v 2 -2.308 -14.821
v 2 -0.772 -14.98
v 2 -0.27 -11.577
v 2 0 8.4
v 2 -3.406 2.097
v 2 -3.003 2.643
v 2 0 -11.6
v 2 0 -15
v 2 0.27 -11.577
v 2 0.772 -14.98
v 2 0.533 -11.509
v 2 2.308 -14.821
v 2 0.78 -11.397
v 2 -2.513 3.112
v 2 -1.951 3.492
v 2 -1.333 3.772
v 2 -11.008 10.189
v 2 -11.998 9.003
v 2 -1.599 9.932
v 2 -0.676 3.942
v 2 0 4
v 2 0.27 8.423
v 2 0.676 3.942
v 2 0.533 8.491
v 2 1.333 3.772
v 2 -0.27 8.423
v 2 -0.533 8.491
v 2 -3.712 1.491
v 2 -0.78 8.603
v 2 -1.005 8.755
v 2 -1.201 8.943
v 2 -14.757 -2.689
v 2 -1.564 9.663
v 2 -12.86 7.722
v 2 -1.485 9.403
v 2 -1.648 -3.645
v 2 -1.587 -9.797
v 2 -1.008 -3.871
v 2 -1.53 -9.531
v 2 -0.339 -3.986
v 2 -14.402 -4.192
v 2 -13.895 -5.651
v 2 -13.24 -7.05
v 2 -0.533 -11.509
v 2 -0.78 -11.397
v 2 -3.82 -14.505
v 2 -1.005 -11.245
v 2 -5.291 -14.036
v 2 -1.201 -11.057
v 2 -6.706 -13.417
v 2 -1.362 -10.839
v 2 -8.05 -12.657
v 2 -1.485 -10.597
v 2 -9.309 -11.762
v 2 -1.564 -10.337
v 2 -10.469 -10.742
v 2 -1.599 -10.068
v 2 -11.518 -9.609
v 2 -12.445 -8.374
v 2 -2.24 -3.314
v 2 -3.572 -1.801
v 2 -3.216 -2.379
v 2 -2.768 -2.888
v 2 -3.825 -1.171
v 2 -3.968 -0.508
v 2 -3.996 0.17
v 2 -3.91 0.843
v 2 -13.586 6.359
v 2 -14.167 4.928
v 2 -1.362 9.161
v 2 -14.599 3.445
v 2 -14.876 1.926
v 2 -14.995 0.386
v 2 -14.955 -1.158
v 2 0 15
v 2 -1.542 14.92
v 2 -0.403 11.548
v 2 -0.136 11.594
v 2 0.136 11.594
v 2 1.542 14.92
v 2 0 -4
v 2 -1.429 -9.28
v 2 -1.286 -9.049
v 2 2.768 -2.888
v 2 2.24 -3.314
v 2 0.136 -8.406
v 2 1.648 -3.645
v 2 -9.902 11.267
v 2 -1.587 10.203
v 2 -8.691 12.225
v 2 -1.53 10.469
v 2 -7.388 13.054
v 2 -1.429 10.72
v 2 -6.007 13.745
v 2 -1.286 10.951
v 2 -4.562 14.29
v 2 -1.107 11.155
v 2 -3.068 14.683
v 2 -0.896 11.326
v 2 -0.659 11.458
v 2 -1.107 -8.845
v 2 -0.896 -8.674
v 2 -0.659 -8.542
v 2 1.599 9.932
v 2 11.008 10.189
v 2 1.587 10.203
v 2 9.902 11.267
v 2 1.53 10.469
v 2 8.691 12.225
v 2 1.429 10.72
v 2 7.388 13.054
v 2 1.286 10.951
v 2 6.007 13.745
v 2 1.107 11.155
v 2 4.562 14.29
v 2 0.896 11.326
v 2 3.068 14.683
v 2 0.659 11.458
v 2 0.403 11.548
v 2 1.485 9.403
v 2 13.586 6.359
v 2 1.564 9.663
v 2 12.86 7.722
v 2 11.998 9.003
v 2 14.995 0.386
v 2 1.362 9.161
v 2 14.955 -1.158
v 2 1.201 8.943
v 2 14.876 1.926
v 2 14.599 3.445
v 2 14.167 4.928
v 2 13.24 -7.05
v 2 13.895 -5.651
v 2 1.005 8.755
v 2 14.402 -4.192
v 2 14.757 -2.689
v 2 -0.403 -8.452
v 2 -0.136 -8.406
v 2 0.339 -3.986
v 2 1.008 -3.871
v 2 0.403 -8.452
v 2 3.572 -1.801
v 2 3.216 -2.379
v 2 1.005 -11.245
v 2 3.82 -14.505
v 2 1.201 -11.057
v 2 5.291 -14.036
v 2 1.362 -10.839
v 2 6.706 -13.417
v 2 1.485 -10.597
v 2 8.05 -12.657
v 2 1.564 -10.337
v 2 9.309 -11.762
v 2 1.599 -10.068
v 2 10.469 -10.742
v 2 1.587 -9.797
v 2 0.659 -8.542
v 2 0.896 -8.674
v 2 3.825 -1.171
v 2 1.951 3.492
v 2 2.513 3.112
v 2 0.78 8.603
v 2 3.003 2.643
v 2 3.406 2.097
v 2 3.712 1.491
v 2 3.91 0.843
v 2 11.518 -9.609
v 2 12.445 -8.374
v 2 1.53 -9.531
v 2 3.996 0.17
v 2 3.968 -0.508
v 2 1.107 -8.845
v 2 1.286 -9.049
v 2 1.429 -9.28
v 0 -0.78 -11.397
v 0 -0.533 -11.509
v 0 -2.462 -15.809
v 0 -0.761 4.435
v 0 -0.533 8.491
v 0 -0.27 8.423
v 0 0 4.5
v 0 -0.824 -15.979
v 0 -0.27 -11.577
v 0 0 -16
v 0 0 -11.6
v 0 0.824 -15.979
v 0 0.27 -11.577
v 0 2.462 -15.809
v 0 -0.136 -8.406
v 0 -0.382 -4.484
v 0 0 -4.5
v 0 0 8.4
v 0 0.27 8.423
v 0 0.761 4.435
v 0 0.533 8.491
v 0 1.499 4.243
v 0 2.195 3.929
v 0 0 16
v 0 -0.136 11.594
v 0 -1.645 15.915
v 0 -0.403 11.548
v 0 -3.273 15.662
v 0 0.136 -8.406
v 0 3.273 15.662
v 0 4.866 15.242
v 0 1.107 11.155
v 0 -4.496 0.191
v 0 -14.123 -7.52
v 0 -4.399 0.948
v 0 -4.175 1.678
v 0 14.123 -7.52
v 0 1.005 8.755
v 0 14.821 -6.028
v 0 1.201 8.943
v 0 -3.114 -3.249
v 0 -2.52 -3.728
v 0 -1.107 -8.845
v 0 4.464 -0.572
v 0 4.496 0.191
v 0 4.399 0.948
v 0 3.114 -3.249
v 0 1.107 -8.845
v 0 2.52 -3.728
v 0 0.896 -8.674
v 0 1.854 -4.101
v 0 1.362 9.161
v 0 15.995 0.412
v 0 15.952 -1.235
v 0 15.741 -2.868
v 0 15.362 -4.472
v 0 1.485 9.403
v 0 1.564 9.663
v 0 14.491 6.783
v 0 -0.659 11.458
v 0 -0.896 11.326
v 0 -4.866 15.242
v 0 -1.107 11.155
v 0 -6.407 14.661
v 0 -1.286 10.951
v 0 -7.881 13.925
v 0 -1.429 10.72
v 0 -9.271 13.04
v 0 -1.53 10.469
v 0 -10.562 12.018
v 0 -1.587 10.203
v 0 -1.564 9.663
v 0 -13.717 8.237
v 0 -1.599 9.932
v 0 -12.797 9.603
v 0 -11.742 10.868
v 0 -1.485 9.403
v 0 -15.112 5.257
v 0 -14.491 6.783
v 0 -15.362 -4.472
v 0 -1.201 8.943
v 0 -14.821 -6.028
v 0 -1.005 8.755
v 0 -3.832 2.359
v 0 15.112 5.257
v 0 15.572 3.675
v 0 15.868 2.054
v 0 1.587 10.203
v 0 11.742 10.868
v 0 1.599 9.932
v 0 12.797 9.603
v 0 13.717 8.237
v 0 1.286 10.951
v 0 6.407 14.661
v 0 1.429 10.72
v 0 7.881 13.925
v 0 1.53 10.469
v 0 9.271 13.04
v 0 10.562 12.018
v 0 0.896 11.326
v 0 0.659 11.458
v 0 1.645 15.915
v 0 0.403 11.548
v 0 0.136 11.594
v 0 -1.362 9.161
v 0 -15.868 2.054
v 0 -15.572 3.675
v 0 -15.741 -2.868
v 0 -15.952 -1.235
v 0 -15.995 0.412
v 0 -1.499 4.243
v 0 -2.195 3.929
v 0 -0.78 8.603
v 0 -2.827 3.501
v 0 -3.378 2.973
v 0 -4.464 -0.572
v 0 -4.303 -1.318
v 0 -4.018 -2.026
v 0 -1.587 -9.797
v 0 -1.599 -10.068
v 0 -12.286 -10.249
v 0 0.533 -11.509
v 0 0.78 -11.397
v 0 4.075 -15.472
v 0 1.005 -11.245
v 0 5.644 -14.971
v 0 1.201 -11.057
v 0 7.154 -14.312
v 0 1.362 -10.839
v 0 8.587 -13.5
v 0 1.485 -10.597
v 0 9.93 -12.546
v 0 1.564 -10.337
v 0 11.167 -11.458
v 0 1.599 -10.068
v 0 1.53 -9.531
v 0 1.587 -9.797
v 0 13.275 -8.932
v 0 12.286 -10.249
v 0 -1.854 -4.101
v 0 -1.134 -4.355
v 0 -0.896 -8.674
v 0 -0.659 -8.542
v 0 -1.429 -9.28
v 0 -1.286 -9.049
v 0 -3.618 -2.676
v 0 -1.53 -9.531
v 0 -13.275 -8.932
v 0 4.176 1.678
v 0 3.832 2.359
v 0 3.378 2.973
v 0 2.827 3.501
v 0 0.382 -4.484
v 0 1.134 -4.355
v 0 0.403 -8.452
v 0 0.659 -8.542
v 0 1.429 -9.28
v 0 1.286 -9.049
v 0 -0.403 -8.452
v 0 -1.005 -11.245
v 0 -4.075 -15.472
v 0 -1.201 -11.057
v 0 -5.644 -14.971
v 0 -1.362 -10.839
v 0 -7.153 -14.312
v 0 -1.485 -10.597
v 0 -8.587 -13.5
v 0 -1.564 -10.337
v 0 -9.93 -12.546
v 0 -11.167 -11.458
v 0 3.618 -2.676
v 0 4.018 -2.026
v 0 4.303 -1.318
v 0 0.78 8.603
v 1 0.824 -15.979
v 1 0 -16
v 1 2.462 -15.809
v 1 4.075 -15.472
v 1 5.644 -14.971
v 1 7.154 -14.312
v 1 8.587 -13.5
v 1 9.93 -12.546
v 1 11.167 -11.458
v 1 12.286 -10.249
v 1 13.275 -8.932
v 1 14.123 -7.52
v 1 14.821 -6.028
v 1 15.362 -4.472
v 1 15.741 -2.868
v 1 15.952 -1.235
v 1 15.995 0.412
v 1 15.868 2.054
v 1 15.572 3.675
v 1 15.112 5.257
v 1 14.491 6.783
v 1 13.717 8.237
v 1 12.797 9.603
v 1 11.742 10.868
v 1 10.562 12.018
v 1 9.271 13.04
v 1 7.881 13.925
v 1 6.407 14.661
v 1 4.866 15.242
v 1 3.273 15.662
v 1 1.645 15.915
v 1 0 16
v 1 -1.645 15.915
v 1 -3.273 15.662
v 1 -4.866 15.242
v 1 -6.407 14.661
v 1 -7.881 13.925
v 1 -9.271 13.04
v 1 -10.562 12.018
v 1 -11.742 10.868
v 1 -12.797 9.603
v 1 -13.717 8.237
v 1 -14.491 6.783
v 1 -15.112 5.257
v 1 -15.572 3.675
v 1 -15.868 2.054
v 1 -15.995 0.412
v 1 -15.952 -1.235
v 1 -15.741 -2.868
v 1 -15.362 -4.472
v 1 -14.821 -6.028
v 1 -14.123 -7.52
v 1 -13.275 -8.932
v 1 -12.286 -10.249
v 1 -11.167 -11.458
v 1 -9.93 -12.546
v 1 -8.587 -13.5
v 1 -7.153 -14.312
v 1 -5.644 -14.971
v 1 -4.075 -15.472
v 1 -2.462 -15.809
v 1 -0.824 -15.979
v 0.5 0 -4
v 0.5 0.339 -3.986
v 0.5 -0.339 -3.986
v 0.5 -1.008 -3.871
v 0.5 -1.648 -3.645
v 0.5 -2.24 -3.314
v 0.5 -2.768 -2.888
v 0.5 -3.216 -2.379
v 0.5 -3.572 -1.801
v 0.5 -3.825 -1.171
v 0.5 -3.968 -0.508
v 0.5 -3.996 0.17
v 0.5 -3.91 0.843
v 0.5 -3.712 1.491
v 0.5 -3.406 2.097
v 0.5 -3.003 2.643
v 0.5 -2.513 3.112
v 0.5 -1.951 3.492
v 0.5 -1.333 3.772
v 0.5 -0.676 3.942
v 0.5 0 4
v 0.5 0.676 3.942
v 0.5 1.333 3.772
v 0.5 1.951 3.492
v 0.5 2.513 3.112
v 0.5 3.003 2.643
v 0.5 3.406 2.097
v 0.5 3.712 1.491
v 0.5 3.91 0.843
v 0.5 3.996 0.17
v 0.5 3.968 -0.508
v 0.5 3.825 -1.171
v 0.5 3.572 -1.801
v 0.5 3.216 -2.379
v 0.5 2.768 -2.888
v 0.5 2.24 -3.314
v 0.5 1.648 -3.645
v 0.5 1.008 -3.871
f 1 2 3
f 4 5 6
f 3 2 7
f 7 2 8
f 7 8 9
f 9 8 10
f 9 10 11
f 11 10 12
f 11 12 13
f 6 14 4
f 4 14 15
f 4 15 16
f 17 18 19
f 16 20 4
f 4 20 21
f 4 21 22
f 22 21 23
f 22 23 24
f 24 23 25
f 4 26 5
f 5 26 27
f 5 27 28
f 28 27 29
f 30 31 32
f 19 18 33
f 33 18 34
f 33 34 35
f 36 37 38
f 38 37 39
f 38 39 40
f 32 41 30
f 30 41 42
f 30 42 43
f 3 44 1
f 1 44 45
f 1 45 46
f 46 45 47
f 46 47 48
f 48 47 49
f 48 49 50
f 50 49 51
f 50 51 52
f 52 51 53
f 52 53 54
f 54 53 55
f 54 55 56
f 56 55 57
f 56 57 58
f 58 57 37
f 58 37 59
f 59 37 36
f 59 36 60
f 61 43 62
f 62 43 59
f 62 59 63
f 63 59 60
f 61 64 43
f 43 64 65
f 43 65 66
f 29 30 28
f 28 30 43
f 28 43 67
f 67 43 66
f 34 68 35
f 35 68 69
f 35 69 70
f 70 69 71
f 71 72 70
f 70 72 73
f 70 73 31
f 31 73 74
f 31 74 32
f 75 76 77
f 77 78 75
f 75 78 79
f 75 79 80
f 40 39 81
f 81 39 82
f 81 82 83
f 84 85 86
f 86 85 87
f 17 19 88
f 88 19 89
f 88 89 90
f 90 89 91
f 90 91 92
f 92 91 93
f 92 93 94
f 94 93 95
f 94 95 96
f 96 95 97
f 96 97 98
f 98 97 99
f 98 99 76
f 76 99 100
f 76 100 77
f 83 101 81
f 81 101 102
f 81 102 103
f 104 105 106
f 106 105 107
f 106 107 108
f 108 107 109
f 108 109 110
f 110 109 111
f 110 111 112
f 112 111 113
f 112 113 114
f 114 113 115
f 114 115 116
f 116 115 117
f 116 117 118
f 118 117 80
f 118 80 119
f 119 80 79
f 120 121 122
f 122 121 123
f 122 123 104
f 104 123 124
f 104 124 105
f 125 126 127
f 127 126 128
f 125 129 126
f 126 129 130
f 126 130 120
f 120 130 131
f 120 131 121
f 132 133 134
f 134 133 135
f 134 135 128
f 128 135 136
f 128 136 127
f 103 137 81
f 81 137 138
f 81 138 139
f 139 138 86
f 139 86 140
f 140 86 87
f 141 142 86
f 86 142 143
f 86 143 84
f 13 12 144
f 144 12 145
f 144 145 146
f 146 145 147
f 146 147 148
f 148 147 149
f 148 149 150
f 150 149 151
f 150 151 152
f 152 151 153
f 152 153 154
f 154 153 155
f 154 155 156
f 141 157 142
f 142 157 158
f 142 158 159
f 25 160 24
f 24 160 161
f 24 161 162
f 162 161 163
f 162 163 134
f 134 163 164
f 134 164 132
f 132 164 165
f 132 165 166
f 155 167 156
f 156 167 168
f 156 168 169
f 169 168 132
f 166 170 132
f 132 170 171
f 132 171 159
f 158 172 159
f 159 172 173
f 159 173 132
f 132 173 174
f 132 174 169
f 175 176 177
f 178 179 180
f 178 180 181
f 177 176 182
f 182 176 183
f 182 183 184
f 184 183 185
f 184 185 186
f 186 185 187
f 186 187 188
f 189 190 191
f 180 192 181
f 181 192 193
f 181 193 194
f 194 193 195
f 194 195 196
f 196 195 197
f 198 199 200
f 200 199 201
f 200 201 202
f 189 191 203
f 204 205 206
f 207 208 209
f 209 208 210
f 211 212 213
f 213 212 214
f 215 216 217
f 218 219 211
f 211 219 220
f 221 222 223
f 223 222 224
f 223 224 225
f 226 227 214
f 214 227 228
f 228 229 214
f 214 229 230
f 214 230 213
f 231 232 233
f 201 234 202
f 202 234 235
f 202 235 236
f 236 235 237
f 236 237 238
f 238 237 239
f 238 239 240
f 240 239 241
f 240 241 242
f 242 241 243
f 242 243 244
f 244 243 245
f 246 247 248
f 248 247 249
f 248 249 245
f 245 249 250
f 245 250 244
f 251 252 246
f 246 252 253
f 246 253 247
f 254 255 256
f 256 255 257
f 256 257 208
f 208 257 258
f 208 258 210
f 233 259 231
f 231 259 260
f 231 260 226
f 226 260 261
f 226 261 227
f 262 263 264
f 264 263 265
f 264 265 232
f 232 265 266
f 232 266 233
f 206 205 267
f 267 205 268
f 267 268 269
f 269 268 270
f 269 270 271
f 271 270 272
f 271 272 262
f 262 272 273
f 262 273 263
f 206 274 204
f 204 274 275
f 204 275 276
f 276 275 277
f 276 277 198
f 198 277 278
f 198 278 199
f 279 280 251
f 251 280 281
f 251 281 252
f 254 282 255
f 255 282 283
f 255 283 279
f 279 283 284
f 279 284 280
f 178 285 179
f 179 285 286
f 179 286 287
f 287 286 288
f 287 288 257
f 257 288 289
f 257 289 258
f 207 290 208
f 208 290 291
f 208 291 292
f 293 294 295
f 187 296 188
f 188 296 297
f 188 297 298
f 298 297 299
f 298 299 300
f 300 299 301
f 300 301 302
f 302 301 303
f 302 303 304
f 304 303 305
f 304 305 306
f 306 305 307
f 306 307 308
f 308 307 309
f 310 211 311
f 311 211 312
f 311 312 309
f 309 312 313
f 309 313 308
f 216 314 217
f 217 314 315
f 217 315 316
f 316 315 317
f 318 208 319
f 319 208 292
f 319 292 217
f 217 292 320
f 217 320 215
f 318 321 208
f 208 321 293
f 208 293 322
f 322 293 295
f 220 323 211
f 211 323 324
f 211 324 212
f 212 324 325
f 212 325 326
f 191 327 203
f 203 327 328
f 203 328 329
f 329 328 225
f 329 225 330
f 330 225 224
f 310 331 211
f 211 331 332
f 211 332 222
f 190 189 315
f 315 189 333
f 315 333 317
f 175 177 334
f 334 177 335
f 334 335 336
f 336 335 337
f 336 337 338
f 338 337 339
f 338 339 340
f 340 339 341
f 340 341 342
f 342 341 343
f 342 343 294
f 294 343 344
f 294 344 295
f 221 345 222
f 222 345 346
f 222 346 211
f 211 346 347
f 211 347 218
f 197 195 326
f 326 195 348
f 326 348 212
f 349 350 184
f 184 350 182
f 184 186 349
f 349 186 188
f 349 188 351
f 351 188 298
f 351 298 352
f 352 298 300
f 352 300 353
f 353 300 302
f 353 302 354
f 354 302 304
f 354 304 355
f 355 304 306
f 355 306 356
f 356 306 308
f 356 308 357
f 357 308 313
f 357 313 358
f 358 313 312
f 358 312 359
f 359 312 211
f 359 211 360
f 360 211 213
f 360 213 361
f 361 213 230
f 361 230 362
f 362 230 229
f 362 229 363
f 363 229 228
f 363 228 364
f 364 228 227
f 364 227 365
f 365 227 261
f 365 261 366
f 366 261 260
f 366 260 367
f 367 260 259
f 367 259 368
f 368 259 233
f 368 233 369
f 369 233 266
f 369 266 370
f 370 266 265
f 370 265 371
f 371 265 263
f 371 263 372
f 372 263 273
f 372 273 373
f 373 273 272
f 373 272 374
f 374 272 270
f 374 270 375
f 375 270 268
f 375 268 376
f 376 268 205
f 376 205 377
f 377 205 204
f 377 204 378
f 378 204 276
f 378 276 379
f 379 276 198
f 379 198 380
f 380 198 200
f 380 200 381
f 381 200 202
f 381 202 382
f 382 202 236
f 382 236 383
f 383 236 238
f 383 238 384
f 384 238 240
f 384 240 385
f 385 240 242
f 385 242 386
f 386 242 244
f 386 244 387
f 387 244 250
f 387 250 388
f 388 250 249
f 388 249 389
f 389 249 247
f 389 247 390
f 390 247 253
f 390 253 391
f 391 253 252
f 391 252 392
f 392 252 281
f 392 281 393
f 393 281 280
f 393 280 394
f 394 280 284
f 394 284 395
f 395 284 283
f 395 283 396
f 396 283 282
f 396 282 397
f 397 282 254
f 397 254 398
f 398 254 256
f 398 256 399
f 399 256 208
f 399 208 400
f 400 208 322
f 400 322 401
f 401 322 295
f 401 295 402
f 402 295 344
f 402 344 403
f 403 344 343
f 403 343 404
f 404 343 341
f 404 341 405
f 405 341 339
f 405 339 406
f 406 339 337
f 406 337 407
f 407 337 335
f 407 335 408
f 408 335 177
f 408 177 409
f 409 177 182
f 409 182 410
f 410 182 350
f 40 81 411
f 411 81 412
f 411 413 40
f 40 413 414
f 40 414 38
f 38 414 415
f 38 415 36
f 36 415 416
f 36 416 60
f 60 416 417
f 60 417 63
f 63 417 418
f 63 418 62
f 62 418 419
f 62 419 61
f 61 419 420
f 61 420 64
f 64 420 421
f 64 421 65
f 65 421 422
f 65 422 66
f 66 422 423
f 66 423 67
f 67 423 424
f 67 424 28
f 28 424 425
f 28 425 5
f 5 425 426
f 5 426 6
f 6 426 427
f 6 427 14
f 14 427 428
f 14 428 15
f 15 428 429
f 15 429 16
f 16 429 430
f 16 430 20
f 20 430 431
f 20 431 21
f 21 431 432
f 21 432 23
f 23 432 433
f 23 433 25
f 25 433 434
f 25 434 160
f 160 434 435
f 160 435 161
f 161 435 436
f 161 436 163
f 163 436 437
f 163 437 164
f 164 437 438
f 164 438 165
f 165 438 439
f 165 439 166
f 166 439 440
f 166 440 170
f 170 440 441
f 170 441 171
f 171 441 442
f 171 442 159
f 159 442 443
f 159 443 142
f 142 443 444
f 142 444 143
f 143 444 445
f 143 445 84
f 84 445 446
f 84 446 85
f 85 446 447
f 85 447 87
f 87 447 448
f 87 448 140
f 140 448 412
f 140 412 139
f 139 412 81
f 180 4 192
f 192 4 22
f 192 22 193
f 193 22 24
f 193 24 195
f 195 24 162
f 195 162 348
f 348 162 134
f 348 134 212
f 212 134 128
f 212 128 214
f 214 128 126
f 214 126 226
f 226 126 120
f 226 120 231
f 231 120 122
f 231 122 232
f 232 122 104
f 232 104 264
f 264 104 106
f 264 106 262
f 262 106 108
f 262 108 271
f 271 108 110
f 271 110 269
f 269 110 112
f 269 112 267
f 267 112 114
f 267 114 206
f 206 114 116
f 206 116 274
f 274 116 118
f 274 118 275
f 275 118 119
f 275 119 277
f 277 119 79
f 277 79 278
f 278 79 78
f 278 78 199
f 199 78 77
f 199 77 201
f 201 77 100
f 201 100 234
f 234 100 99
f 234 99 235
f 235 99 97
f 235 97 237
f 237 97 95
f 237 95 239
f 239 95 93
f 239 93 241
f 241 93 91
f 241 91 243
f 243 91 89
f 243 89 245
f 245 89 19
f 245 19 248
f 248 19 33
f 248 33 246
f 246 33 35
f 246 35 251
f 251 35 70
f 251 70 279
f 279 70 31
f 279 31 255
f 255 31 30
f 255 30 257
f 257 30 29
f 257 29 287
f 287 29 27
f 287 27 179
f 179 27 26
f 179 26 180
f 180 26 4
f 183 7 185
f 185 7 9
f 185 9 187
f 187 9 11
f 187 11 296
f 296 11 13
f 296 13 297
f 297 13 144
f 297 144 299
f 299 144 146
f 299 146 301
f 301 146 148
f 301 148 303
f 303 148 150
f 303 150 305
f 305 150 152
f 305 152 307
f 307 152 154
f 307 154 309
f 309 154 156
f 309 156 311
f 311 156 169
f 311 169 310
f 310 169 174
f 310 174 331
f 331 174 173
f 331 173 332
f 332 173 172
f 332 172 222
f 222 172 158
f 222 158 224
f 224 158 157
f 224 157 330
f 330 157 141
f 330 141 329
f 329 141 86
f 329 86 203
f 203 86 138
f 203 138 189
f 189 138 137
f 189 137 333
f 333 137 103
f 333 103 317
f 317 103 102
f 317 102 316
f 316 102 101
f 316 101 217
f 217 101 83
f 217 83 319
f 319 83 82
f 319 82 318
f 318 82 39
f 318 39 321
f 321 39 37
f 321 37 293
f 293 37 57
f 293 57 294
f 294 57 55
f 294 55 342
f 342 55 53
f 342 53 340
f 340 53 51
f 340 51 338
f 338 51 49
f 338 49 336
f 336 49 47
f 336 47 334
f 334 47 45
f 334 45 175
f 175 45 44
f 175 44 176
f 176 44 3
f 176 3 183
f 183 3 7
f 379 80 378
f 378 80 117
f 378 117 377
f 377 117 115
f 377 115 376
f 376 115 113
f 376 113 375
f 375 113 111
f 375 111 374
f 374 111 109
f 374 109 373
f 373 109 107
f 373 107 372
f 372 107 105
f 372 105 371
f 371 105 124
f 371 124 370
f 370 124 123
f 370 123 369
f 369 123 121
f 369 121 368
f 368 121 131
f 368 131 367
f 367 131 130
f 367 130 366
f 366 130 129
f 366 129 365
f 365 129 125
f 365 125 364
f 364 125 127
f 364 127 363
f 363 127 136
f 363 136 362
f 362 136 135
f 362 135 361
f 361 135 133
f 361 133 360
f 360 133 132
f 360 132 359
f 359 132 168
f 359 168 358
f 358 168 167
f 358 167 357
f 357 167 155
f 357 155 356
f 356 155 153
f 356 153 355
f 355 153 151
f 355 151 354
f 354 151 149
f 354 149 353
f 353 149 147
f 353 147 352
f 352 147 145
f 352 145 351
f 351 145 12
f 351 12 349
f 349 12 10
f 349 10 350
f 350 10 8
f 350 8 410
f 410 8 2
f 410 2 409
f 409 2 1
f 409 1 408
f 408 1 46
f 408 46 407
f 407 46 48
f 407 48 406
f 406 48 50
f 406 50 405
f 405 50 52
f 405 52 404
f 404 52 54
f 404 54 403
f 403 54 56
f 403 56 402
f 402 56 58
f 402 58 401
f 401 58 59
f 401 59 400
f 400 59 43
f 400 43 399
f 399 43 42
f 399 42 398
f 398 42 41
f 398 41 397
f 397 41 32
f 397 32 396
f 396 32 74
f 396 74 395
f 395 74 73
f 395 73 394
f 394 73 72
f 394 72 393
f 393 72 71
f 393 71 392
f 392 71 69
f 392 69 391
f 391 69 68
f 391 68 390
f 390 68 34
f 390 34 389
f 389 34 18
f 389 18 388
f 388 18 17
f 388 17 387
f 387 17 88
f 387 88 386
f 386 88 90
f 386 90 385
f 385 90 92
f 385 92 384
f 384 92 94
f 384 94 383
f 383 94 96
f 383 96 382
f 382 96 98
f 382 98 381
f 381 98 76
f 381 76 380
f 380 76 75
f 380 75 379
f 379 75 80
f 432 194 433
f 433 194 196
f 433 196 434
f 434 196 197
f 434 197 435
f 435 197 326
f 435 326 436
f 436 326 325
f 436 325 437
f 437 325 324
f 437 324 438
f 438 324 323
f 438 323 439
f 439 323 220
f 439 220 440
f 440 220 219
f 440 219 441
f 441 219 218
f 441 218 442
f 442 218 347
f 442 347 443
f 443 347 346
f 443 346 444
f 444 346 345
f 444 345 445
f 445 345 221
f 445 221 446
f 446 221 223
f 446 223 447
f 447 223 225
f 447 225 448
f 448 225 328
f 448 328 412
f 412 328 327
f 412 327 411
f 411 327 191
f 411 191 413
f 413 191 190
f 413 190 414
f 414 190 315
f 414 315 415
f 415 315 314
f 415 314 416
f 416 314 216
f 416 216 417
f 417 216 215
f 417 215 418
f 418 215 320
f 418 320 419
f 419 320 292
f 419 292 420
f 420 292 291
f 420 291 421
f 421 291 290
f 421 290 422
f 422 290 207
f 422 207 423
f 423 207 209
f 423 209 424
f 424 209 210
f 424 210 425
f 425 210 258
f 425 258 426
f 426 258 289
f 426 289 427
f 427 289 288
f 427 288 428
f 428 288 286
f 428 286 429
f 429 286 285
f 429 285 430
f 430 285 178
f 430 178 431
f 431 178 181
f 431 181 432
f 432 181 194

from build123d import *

# Parameters (mm, degrees)
SKETCH1_R           = 16
SKETCH1_R_2         = 4
BOSS_EXTRUDE1_DEPTH = 2
SKETCH2_R           = 1.6
CUT_EXTRUDE1_DEPTH  = 3
CHAMFER1_SIZE       = 1
CHAMFER2_SIZE       = 0.5


with BuildPart() as part:
    # Sketch1 → Boss-Extrude1 (new body)
    with BuildSketch(Plane(origin=(0, 0, 0), x_dir=(0, 0, -1), z_dir=(1, 0, 0))):
        Circle(SKETCH1_R)
        Circle(SKETCH1_R_2, mode=Mode.SUBTRACT)
    extrude(amount=BOSS_EXTRUDE1_DEPTH)

    # Sketch2 → Cut-Extrude1 (cut, through all)
    with BuildSketch(Plane(origin=(2, 0, 0), x_dir=(0, 0, -1), z_dir=(1, 0, 0))):
        with Locations((-10, 0)):
            Circle(SKETCH2_R)
        with Locations((10, 0)):
            Circle(SKETCH2_R)
    extrude(amount=-CUT_EXTRUDE1_DEPTH, mode=Mode.SUBTRACT)

    # Chamfer1
    chamfer1_edges = [part.edges().sort_by_distance(p)[0] for p in [
        (2, 0, 16),
    ]]
    chamfer(chamfer1_edges, length=CHAMFER1_SIZE)

    # Chamfer2
    chamfer2_edges = [part.edges().sort_by_distance(p)[0] for p in [
        (0, 0, 4),
    ]]
    chamfer(chamfer2_edges, length=CHAMFER2_SIZE)


solid = part.part
